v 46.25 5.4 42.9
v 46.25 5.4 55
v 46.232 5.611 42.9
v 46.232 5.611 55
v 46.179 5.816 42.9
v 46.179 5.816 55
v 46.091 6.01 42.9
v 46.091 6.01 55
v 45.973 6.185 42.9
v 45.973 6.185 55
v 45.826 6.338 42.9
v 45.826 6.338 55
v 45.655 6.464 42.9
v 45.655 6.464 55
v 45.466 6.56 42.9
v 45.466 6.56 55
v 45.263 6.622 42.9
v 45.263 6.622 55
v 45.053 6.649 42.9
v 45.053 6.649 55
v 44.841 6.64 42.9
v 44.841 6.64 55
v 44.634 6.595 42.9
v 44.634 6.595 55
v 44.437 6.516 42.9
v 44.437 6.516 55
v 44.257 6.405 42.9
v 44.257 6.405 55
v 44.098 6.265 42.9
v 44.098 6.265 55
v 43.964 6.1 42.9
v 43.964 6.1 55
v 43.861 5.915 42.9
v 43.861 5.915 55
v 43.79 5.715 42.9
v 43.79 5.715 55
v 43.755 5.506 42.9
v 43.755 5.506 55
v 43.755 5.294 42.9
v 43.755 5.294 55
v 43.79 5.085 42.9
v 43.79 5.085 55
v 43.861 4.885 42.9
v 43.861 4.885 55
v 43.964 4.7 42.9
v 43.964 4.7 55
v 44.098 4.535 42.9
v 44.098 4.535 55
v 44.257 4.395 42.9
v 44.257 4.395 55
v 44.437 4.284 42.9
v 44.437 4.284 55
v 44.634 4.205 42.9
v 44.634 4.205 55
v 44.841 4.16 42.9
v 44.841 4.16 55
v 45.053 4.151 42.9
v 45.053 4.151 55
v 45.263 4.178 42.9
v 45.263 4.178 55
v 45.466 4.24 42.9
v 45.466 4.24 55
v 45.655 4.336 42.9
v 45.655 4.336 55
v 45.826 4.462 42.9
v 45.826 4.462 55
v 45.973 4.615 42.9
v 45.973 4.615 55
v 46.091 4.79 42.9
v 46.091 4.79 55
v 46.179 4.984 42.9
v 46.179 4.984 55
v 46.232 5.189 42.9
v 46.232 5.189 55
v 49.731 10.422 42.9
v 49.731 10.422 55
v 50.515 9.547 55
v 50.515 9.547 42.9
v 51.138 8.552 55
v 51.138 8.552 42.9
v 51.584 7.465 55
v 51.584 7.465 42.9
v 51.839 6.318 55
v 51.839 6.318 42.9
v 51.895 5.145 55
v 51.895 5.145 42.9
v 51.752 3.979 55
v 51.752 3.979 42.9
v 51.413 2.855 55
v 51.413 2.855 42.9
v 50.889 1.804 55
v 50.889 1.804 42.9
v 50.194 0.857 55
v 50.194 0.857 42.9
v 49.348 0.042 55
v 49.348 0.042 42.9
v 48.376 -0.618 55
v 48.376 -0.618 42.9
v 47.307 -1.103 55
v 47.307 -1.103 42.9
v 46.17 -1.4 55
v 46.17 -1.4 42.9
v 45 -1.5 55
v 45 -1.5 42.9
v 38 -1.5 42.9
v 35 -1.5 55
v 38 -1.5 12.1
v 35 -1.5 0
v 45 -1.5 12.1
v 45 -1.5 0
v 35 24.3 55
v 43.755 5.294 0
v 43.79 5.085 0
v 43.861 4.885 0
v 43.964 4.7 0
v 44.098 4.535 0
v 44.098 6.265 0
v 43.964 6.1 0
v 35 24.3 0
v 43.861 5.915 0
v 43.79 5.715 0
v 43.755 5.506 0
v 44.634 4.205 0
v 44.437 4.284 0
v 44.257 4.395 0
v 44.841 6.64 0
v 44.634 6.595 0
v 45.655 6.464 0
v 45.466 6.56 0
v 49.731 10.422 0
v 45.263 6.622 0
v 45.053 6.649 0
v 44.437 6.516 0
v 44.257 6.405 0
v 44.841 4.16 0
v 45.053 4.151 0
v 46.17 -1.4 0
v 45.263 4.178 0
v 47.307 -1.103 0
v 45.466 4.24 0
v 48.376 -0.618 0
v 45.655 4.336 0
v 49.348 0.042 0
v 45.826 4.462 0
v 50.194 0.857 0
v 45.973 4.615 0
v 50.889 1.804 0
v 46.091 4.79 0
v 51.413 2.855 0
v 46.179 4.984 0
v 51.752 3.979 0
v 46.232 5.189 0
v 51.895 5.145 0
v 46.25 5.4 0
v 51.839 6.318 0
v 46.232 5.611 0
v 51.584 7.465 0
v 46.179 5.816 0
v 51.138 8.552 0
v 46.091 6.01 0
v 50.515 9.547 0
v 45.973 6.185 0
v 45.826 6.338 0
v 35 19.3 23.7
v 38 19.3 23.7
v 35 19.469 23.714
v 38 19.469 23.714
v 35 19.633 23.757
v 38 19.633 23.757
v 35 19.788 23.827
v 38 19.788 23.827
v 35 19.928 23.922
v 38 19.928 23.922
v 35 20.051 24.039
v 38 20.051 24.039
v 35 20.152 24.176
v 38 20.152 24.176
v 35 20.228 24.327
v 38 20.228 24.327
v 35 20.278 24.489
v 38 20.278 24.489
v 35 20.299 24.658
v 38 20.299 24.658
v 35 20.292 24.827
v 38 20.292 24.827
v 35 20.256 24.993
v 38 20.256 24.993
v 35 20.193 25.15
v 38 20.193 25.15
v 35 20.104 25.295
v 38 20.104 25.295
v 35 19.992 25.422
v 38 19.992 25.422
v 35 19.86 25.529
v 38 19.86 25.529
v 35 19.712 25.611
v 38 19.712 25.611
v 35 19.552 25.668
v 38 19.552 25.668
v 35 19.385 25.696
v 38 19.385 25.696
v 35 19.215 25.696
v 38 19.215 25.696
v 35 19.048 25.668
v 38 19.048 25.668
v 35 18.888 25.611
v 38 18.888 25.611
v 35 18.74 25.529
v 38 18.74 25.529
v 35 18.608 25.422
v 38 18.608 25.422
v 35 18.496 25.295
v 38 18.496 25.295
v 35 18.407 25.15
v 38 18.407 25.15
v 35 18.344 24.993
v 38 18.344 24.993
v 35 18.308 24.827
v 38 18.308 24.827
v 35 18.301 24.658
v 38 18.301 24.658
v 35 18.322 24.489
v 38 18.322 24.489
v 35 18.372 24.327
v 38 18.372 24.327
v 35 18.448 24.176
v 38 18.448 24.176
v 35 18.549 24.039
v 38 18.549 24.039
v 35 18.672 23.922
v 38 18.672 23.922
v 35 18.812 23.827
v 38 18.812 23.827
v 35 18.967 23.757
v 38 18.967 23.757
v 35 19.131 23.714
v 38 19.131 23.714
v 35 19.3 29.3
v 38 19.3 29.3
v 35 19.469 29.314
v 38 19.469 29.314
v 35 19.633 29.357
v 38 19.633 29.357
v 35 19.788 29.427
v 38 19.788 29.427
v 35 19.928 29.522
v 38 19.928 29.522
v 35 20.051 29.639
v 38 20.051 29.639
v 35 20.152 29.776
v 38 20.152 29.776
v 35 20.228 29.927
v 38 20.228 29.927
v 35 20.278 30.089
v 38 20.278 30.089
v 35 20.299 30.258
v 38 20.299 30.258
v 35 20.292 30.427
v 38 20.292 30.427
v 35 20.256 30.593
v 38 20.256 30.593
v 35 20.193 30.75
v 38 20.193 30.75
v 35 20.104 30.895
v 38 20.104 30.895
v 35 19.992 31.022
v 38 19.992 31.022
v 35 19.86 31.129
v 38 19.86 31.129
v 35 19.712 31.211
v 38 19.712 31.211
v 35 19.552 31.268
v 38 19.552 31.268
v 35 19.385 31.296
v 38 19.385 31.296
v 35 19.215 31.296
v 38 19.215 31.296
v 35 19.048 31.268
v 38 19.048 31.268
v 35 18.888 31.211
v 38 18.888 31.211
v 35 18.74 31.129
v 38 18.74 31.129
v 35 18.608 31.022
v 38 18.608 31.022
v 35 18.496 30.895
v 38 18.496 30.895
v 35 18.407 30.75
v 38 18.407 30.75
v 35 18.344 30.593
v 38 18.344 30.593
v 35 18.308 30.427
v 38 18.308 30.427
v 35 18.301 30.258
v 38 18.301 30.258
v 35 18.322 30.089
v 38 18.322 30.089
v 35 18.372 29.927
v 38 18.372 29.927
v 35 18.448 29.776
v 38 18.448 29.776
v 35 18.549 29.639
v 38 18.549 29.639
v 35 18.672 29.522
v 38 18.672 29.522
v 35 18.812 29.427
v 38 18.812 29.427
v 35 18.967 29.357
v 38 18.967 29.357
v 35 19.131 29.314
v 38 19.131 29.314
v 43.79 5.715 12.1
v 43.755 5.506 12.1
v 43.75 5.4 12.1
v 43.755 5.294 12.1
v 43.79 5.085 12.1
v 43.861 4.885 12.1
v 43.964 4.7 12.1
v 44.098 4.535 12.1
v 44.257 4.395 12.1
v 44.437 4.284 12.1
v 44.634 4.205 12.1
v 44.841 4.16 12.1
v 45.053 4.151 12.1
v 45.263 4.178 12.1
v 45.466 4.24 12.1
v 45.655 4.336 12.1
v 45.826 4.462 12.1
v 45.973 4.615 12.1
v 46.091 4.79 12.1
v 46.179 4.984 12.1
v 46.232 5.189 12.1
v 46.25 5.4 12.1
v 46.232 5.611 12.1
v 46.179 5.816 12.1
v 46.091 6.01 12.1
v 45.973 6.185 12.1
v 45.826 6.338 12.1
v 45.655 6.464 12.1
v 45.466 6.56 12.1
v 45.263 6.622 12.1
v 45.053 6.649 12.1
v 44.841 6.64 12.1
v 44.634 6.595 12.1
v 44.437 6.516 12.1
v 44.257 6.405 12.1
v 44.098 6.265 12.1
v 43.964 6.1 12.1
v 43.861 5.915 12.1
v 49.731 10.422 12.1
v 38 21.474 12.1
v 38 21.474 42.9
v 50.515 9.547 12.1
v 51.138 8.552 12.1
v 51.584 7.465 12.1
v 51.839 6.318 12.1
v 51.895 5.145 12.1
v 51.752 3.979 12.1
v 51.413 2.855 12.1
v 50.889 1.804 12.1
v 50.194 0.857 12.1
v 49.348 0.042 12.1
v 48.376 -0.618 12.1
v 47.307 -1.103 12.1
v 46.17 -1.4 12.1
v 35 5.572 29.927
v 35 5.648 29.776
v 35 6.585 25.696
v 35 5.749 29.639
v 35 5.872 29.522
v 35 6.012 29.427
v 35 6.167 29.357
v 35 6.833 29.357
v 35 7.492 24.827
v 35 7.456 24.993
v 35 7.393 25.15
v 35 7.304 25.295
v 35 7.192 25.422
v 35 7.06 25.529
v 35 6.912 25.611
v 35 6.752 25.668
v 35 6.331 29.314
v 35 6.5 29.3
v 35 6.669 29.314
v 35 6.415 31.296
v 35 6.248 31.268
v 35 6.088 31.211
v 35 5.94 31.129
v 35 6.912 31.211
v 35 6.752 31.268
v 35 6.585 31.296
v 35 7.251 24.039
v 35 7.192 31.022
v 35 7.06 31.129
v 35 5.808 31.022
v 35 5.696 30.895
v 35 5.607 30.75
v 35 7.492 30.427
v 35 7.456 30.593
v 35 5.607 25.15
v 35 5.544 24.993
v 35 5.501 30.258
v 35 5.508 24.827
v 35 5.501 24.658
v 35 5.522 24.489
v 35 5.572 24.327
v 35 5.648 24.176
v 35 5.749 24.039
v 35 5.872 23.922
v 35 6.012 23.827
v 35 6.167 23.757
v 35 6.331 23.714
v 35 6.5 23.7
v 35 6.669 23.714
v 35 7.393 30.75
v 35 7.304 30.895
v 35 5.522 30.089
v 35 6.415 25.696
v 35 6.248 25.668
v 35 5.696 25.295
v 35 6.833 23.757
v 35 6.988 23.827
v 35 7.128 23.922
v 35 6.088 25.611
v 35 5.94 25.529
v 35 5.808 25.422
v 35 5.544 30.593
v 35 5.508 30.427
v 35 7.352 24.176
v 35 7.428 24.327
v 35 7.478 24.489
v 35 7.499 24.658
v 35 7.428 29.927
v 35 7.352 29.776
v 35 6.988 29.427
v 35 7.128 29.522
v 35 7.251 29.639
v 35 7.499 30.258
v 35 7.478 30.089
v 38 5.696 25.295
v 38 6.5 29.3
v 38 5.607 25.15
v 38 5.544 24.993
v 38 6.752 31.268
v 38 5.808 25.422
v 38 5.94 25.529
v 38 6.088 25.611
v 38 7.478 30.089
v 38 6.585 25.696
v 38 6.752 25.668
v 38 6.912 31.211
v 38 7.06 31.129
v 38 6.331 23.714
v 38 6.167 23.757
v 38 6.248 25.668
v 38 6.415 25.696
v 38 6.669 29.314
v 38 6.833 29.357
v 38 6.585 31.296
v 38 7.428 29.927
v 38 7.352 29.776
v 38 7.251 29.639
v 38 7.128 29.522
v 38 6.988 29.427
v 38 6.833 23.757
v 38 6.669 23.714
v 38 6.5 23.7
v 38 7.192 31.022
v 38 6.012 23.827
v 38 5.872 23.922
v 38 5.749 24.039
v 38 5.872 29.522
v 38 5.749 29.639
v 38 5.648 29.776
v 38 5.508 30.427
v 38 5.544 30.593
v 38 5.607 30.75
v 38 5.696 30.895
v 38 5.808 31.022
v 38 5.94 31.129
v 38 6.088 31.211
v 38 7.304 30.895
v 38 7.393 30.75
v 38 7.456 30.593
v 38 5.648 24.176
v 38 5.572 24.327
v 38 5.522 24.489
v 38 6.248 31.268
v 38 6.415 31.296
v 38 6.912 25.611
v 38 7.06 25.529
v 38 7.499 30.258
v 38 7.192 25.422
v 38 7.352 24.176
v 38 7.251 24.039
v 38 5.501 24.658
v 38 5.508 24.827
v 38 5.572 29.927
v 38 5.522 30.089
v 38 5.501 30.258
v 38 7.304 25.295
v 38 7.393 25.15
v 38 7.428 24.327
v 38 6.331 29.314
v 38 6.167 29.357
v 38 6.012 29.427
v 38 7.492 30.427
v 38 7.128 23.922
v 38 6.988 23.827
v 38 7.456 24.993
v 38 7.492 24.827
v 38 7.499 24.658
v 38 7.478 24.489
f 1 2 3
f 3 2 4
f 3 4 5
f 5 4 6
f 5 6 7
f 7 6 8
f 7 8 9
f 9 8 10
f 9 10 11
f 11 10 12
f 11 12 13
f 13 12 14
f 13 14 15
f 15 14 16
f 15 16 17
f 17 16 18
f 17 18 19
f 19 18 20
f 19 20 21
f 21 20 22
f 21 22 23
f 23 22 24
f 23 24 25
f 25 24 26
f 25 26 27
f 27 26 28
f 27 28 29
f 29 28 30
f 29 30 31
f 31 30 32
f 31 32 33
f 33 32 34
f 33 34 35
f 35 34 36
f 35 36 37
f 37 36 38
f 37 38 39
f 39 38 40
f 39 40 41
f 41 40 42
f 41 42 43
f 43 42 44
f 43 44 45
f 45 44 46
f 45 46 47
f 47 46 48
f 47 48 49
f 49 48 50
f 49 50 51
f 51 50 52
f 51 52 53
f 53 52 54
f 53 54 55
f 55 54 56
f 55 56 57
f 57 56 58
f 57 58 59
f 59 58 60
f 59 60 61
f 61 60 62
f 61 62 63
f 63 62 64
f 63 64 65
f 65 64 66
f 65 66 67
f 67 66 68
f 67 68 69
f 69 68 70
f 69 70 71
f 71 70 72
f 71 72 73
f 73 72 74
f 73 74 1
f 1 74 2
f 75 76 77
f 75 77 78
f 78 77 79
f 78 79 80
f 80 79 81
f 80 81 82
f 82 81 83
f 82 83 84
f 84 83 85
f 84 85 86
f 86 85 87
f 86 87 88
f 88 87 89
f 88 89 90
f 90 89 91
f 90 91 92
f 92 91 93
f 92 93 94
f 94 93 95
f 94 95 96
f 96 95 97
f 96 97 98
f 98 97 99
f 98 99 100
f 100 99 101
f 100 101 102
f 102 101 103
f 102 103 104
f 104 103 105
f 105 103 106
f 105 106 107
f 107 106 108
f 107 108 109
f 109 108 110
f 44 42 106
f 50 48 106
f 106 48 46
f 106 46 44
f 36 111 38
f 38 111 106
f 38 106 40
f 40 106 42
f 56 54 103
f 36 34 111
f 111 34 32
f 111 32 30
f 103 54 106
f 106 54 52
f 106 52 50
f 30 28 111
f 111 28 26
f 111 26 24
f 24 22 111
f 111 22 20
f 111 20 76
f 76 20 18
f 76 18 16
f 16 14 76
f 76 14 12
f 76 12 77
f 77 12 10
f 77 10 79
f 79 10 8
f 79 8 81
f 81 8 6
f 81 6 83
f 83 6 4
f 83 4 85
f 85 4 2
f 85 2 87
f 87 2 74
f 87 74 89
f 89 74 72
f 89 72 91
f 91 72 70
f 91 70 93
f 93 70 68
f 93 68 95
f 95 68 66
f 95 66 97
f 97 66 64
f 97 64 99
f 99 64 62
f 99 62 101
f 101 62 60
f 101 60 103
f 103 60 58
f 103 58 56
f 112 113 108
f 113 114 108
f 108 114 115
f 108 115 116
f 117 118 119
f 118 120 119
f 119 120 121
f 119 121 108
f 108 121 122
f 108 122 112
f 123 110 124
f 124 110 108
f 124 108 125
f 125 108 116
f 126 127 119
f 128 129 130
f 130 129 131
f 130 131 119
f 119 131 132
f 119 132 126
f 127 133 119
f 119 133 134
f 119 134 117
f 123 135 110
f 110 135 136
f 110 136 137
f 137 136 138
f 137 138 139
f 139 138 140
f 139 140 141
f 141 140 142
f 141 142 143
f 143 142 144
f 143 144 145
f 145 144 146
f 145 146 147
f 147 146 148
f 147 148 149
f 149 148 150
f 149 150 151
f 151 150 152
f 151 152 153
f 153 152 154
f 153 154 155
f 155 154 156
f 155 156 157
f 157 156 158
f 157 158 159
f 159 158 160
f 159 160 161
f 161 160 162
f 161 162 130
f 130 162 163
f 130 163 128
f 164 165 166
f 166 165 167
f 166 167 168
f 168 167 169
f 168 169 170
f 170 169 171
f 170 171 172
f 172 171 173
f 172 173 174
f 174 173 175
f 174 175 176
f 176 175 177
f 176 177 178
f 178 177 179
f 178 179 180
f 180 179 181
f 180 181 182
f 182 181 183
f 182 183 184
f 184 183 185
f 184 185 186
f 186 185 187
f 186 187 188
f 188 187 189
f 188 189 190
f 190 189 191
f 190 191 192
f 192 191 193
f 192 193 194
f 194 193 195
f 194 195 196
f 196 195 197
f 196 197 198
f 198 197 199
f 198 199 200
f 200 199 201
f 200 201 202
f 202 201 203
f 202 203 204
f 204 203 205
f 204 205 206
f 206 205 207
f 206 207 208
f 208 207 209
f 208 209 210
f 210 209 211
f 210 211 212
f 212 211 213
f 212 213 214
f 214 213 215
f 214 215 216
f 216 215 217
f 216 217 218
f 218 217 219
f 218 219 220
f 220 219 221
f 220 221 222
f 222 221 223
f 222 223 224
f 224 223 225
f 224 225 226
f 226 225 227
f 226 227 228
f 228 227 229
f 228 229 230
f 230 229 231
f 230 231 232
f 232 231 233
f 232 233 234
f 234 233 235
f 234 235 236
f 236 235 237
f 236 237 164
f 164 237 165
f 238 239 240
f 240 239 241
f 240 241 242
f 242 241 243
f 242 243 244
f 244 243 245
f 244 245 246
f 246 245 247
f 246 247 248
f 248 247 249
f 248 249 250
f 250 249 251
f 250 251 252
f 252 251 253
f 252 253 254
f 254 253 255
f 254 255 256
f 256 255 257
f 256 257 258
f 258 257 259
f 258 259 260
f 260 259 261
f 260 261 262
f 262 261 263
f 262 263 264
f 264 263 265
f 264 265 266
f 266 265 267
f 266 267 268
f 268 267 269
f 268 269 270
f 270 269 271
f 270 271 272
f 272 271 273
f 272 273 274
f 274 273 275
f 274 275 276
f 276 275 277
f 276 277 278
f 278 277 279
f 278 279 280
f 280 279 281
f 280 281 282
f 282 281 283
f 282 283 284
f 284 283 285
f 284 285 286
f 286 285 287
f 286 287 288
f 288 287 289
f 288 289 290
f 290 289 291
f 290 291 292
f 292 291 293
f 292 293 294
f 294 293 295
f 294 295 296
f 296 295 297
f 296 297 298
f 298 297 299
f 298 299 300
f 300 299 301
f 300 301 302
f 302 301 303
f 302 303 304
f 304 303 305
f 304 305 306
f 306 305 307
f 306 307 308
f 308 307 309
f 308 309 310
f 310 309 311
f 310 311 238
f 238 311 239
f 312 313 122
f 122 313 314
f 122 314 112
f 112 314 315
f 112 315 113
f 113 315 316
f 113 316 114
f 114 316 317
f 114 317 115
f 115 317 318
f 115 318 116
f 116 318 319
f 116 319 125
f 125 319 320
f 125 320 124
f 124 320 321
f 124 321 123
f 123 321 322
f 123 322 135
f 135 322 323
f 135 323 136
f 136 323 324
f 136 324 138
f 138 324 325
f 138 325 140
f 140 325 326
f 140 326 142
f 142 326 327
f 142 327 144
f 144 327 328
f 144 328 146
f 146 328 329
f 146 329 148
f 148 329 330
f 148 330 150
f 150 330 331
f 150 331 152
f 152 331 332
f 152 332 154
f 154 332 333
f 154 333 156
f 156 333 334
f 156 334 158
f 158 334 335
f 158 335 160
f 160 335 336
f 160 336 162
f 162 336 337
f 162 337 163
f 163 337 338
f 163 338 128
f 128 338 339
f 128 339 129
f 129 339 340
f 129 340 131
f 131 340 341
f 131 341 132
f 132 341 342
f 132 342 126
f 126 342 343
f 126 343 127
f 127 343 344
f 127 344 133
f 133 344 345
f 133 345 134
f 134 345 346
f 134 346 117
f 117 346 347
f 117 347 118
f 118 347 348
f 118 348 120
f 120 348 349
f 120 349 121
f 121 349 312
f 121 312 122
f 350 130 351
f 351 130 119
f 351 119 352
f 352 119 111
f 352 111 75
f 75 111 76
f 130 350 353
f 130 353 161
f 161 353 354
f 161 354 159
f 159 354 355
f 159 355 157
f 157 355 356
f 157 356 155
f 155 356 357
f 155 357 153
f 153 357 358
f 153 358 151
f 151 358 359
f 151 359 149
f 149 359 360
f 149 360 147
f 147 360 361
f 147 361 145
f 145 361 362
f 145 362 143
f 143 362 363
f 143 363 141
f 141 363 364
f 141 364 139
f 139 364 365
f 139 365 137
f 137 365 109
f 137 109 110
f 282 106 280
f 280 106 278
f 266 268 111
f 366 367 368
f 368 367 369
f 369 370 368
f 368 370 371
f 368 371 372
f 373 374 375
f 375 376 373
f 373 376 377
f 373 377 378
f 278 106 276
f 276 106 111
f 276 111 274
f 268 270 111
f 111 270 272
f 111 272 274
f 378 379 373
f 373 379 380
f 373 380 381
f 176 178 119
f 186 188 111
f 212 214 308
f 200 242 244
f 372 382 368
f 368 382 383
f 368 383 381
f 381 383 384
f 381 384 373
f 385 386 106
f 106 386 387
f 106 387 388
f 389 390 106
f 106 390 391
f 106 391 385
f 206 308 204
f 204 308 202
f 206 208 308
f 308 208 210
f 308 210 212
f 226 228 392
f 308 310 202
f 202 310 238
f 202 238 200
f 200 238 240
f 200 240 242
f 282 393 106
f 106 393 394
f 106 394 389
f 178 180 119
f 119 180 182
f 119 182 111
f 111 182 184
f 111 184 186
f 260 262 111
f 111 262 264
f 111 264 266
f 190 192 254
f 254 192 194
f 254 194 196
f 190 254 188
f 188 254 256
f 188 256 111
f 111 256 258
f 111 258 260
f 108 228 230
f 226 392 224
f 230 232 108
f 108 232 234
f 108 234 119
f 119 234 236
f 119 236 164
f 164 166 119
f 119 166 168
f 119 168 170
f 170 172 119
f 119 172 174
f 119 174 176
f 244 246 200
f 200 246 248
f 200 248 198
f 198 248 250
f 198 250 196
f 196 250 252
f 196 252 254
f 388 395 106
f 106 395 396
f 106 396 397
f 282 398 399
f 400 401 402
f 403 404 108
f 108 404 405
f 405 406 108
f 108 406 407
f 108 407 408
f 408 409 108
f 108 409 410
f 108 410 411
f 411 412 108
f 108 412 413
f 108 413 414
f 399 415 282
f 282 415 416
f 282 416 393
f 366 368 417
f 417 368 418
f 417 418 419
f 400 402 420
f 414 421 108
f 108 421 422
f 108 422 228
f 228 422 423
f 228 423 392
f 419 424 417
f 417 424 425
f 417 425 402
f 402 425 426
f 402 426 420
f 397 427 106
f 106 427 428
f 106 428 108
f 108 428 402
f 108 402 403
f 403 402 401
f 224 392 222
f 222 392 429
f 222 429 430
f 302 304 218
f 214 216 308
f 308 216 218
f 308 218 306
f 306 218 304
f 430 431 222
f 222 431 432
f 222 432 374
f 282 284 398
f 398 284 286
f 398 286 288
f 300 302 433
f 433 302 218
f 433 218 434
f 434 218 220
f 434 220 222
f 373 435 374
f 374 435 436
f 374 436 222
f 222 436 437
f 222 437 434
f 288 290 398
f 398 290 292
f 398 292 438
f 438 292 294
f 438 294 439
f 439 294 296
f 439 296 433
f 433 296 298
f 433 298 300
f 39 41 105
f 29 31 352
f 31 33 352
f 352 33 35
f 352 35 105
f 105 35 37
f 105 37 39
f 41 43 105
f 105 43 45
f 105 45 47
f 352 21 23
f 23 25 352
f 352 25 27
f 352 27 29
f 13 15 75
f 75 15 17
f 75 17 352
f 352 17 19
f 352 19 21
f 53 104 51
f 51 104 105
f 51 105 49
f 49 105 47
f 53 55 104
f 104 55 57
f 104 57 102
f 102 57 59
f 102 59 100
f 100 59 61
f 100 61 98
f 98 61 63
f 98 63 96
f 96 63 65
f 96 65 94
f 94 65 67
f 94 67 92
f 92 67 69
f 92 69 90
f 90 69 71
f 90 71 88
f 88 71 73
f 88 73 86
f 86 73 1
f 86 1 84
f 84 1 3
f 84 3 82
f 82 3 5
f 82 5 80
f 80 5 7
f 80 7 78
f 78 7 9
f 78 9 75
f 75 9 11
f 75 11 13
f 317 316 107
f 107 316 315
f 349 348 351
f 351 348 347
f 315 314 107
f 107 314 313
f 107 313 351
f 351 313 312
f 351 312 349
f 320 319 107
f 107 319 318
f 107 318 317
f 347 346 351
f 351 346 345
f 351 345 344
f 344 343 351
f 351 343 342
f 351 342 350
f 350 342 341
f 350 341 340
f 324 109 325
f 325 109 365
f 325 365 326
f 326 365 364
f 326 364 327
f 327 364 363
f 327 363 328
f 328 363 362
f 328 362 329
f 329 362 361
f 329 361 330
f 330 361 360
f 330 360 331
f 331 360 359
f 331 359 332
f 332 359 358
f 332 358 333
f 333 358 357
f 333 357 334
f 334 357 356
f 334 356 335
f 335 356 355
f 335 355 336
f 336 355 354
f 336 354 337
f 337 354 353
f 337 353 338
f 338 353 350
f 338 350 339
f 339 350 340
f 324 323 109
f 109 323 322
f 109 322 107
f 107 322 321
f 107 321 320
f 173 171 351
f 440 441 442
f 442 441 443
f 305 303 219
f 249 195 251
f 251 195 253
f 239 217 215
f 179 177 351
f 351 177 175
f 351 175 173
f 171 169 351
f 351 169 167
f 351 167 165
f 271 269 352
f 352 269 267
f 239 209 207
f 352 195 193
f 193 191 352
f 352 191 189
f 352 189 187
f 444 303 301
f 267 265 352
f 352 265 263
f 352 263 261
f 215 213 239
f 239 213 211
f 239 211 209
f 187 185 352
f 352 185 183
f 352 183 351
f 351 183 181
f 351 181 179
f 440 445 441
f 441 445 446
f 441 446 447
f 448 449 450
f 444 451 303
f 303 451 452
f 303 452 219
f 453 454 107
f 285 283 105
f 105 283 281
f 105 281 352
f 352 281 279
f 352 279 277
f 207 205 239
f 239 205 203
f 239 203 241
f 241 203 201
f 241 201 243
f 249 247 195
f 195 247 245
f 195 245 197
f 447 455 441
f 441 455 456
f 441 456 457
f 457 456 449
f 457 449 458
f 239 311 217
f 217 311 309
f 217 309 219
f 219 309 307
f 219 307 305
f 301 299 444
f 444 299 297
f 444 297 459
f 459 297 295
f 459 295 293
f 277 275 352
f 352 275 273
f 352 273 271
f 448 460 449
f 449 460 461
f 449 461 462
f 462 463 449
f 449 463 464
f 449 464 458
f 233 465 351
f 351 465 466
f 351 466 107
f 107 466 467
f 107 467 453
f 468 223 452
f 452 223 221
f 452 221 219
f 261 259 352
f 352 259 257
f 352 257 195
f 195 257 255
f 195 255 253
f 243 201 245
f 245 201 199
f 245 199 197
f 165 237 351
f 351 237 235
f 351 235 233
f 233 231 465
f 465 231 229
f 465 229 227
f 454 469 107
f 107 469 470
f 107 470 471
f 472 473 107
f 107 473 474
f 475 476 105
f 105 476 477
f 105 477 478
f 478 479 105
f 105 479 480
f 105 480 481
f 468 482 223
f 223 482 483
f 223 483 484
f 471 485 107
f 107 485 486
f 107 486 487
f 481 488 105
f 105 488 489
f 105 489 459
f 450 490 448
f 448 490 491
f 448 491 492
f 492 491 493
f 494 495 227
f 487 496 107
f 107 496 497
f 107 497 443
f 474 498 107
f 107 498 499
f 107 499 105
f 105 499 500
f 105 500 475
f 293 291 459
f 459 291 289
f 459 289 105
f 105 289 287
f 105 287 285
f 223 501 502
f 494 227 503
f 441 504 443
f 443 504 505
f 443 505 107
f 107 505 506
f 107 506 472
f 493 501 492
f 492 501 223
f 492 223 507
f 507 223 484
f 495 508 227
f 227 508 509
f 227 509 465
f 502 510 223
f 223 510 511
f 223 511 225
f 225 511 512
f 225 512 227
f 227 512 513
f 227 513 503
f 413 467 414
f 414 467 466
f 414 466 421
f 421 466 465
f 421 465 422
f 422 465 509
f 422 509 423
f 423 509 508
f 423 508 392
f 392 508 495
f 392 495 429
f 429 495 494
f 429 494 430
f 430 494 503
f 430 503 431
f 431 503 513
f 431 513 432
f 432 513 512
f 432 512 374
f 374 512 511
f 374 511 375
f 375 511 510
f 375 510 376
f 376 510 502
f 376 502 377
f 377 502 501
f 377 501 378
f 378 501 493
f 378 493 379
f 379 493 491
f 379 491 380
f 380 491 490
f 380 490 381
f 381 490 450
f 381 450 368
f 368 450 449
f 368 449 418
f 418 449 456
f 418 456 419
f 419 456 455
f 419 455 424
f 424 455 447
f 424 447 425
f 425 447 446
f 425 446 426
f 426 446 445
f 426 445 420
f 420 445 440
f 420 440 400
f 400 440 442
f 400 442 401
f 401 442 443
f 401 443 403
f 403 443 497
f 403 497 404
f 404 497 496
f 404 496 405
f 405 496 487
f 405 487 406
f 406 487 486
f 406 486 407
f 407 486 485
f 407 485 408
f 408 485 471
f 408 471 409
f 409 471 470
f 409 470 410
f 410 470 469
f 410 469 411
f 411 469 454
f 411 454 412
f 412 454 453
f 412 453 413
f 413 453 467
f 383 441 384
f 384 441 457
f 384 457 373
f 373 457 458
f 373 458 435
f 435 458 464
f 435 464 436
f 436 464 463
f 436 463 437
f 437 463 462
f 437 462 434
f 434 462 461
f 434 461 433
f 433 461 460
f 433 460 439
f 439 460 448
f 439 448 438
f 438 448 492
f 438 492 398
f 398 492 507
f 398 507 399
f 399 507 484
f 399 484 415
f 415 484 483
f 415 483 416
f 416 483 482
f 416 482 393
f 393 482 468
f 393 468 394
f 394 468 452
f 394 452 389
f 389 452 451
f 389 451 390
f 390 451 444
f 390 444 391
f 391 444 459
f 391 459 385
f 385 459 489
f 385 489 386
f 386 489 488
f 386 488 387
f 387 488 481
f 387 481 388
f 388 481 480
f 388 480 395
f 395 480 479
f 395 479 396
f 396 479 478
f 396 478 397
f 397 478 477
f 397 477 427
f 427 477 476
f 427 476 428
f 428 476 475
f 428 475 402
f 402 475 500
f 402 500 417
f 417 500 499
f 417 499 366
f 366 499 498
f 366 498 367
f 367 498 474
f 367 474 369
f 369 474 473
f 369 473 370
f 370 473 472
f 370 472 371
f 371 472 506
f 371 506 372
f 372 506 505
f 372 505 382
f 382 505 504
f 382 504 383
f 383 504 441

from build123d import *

# Parameters (mm, degrees)
SKETCH1_W           = 70
SKETCH1_H           = 3
BOSS_EXTRUDE1_DEPTH = 55
SKETCH2_W           = 70
SKETCH2_H           = 2.5
BOSS_EXTRUDE2_DEPTH = 22.8
SKETCH5_R           = 3.5
CUT_EXTRUDE1_DEPTH  = 84.8
SKETCH6_W           = 16
SKETCH6_H           = 11.6
SKETCH6_W_2         = 15
BOSS_EXTRUDE7_DEPTH = 22.8
SKETCH7_R           = 1
CUT_EXTRUDE2_DEPTH  = 8
SKETCH8_R           = 1
CUT_EXTRUDE3_DEPTH  = 8
FILLET1_R           = 5
SKETCH9_W           = 14.084433838
SKETCH9_H           = 7
CUT_EXTRUDE4_DEPTH  = 66
SKETCH10_R          = 1.25
BOSS_EXTRUDE8_DEPTH = 55
SKETCH11_W          = 19.22261198
SKETCH11_H          = 30.8
CUT_EXTRUDE5_DEPTH  = 35
SKETCH12_W          = 30.8
SKETCH12_H          = 25.8
SKETCH12_R          = 1
BOSS_EXTRUDE9_DEPTH = 3
CUT_EXTRUDE6_DEPTH  = 96
SKETCH14_W          = 89.735472453
SKETCH14_H          = 73.087764116
CUT_EXTRUDE7_DEPTH  = 96


with BuildPart() as part:
    # Sketch1 → Boss-Extrude1 (new body)
    with BuildSketch(Plane.XY):
        Rectangle(SKETCH1_W, SKETCH1_H)
    extrude(amount=BOSS_EXTRUDE1_DEPTH)

    # Sketch2 → Boss-Extrude2 (add)
    with BuildSketch(Plane(origin=(0, 1.5, 0), x_dir=(1, 0, 0), z_dir=(0, 1, 0))):
        with Locations((0, -1.25)):
            Rectangle(SKETCH2_W, SKETCH2_H)
        with Locations((0, -53.75)):
            Rectangle(SKETCH2_W, SKETCH2_H)
    extrude(amount=BOSS_EXTRUDE2_DEPTH)

    # Sketch5 → Cut-Extrude1 (cut)
    with BuildSketch(Plane.XY.offset(55)):
        with Locations((-24, 11.4)):
            Circle(SKETCH5_R)
    extrude(amount=-CUT_EXTRUDE1_DEPTH, mode=Mode.SUBTRACT)

    # Sketch6 → Boss-Extrude7 (add)
    with BuildSketch(Plane(origin=(0, 24.3, 0), x_dir=(1, 0, 0), z_dir=(0, 1, 0))):
        with Locations((-7, -27.5)):
            Rectangle(SKETCH6_W, SKETCH6_H)
        with Locations((27.5, -27.5)):
            Rectangle(SKETCH6_W_2, SKETCH6_H)
    extrude(amount=-BOSS_EXTRUDE7_DEPTH)

    # Sketch7 → Cut-Extrude2 (cut)
    with BuildSketch(Plane(origin=(0, 24.3, 0), x_dir=(1, 0, 0), z_dir=(0, 1, 0))):
        with Locations((-12, -24.7)):
            Circle(SKETCH7_R)
        with Locations((23, -30.3)):
            Circle(SKETCH7_R)
        with Locations((-2, -24.7)):
            Circle(SKETCH7_R)
        with Locations((-2, -30.3)):
            Circle(SKETCH7_R)
        with Locations((-12, -30.3)):
            Circle(SKETCH7_R)
        with Locations((23, -24.7)):
            Circle(SKETCH7_R)
        with Locations((32, -24.7)):
            Circle(SKETCH7_R)
        with Locations((32, -30.3)):
            Circle(SKETCH7_R)
    extrude(amount=-CUT_EXTRUDE2_DEPTH, mode=Mode.SUBTRACT)

    # Sketch8 → Cut-Extrude3 (cut)
    with BuildSketch(Plane(origin=(35, 0, 0), x_dir=(0, 0, -1), z_dir=(1, 0, 0))):
        with Locations((-24.7, 19.3)):
            Circle(SKETCH8_R)
        with Locations((-30.3, 19.3)):
            Circle(SKETCH8_R)
        with Locations((-24.7, 6.5)):
            Circle(SKETCH8_R)
        with Locations((-30.3, 6.5)):
            Circle(SKETCH8_R)
    extrude(amount=-CUT_EXTRUDE3_DEPTH, mode=Mode.SUBTRACT)

    # Fillet1
    fillet1_edges = [part.edges().sort_by_distance(p)[0] for p in [
        (1, 1.5, 27.5),
        (-15, 1.5, 27.5),
        (20, 1.5, 27.5),
    ]]
    fillet(fillet1_edges, radius=FILLET1_R)

    # Sketch9 → Cut-Extrude4 (cut)
    with BuildSketch(Plane.XY.offset(55)):
        with Locations((-31.042216919, 11.4)):
            Rectangle(SKETCH9_W, SKETCH9_H)
    extrude(amount=-CUT_EXTRUDE4_DEPTH, mode=Mode.SUBTRACT)

    # Sketch10 → Boss-Extrude8 (add)
    with BuildSketch(Plane.XY.offset(55)):
        with BuildLine():
            Line((35, 24.3), (49.731333151, 10.422398492))
            ThreePointArc((49.731333151, 10.422398492), (51.413444846, 2.85486244), (45, -1.5))
            Line((45, -1.5), (35, -1.5))
            Line((35, -1.5), (35, 24.3))
        make_face()
        with Locations((45, 5.4)):
            Circle(SKETCH10_R, mode=Mode.SUBTRACT)
    extrude(amount=-BOSS_EXTRUDE8_DEPTH)

    # Sketch11 → Cut-Extrude5 (cut)
    with BuildSketch(Plane.XZ.offset(1.5)):
        with Locations((44.61130599, 27.5)):
            Rectangle(SKETCH11_W, SKETCH11_H)
    extrude(amount=-CUT_EXTRUDE5_DEPTH, mode=Mode.SUBTRACT)

    # Sketch12 → Boss-Extrude9 (add)
    with BuildSketch(Plane(origin=(35, 0, 0), x_dir=(0, 0, -1), z_dir=(1, 0, 0))):
        with Locations((-27.5, 11.4)):
            Rectangle(SKETCH12_W, SKETCH12_H)
        with Locations((-30.3, 19.3)):
            Circle(SKETCH12_R, mode=Mode.SUBTRACT)
        with Locations((-30.3, 6.5)):
            Circle(SKETCH12_R, mode=Mode.SUBTRACT)
        with Locations((-24.7, 6.5)):
            Circle(SKETCH12_R, mode=Mode.SUBTRACT)
        with Locations((-24.7, 19.3)):
            Circle(SKETCH12_R, mode=Mode.SUBTRACT)
    extrude(amount=BOSS_EXTRUDE9_DEPTH)

    # Sketch13 → Cut-Extrude6 (cut)
    with BuildSketch(Plane(origin=(0, 0, 0), x_dir=(-1, 0, 0), z_dir=(0, 0, -1))):
        Polygon((-35, 24.3), (-38, 21.473860363), (-40.585256697, 23.898774346), (-37.538023225, 25.511318129), align=None)
    extrude(amount=-CUT_EXTRUDE6_DEPTH, mode=Mode.SUBTRACT)

    # Sketch14 → Cut-Extrude7 (cut)
    with BuildSketch(Plane(origin=(0, 24.3, 0), x_dir=(1, 0, 0), z_dir=(0, 1, 0))):
        with Locations((-9.867736226, -18.456117942)):
            Rectangle(SKETCH14_W, SKETCH14_H)
    extrude(amount=-CUT_EXTRUDE7_DEPTH, mode=Mode.SUBTRACT)


solid = part.part
